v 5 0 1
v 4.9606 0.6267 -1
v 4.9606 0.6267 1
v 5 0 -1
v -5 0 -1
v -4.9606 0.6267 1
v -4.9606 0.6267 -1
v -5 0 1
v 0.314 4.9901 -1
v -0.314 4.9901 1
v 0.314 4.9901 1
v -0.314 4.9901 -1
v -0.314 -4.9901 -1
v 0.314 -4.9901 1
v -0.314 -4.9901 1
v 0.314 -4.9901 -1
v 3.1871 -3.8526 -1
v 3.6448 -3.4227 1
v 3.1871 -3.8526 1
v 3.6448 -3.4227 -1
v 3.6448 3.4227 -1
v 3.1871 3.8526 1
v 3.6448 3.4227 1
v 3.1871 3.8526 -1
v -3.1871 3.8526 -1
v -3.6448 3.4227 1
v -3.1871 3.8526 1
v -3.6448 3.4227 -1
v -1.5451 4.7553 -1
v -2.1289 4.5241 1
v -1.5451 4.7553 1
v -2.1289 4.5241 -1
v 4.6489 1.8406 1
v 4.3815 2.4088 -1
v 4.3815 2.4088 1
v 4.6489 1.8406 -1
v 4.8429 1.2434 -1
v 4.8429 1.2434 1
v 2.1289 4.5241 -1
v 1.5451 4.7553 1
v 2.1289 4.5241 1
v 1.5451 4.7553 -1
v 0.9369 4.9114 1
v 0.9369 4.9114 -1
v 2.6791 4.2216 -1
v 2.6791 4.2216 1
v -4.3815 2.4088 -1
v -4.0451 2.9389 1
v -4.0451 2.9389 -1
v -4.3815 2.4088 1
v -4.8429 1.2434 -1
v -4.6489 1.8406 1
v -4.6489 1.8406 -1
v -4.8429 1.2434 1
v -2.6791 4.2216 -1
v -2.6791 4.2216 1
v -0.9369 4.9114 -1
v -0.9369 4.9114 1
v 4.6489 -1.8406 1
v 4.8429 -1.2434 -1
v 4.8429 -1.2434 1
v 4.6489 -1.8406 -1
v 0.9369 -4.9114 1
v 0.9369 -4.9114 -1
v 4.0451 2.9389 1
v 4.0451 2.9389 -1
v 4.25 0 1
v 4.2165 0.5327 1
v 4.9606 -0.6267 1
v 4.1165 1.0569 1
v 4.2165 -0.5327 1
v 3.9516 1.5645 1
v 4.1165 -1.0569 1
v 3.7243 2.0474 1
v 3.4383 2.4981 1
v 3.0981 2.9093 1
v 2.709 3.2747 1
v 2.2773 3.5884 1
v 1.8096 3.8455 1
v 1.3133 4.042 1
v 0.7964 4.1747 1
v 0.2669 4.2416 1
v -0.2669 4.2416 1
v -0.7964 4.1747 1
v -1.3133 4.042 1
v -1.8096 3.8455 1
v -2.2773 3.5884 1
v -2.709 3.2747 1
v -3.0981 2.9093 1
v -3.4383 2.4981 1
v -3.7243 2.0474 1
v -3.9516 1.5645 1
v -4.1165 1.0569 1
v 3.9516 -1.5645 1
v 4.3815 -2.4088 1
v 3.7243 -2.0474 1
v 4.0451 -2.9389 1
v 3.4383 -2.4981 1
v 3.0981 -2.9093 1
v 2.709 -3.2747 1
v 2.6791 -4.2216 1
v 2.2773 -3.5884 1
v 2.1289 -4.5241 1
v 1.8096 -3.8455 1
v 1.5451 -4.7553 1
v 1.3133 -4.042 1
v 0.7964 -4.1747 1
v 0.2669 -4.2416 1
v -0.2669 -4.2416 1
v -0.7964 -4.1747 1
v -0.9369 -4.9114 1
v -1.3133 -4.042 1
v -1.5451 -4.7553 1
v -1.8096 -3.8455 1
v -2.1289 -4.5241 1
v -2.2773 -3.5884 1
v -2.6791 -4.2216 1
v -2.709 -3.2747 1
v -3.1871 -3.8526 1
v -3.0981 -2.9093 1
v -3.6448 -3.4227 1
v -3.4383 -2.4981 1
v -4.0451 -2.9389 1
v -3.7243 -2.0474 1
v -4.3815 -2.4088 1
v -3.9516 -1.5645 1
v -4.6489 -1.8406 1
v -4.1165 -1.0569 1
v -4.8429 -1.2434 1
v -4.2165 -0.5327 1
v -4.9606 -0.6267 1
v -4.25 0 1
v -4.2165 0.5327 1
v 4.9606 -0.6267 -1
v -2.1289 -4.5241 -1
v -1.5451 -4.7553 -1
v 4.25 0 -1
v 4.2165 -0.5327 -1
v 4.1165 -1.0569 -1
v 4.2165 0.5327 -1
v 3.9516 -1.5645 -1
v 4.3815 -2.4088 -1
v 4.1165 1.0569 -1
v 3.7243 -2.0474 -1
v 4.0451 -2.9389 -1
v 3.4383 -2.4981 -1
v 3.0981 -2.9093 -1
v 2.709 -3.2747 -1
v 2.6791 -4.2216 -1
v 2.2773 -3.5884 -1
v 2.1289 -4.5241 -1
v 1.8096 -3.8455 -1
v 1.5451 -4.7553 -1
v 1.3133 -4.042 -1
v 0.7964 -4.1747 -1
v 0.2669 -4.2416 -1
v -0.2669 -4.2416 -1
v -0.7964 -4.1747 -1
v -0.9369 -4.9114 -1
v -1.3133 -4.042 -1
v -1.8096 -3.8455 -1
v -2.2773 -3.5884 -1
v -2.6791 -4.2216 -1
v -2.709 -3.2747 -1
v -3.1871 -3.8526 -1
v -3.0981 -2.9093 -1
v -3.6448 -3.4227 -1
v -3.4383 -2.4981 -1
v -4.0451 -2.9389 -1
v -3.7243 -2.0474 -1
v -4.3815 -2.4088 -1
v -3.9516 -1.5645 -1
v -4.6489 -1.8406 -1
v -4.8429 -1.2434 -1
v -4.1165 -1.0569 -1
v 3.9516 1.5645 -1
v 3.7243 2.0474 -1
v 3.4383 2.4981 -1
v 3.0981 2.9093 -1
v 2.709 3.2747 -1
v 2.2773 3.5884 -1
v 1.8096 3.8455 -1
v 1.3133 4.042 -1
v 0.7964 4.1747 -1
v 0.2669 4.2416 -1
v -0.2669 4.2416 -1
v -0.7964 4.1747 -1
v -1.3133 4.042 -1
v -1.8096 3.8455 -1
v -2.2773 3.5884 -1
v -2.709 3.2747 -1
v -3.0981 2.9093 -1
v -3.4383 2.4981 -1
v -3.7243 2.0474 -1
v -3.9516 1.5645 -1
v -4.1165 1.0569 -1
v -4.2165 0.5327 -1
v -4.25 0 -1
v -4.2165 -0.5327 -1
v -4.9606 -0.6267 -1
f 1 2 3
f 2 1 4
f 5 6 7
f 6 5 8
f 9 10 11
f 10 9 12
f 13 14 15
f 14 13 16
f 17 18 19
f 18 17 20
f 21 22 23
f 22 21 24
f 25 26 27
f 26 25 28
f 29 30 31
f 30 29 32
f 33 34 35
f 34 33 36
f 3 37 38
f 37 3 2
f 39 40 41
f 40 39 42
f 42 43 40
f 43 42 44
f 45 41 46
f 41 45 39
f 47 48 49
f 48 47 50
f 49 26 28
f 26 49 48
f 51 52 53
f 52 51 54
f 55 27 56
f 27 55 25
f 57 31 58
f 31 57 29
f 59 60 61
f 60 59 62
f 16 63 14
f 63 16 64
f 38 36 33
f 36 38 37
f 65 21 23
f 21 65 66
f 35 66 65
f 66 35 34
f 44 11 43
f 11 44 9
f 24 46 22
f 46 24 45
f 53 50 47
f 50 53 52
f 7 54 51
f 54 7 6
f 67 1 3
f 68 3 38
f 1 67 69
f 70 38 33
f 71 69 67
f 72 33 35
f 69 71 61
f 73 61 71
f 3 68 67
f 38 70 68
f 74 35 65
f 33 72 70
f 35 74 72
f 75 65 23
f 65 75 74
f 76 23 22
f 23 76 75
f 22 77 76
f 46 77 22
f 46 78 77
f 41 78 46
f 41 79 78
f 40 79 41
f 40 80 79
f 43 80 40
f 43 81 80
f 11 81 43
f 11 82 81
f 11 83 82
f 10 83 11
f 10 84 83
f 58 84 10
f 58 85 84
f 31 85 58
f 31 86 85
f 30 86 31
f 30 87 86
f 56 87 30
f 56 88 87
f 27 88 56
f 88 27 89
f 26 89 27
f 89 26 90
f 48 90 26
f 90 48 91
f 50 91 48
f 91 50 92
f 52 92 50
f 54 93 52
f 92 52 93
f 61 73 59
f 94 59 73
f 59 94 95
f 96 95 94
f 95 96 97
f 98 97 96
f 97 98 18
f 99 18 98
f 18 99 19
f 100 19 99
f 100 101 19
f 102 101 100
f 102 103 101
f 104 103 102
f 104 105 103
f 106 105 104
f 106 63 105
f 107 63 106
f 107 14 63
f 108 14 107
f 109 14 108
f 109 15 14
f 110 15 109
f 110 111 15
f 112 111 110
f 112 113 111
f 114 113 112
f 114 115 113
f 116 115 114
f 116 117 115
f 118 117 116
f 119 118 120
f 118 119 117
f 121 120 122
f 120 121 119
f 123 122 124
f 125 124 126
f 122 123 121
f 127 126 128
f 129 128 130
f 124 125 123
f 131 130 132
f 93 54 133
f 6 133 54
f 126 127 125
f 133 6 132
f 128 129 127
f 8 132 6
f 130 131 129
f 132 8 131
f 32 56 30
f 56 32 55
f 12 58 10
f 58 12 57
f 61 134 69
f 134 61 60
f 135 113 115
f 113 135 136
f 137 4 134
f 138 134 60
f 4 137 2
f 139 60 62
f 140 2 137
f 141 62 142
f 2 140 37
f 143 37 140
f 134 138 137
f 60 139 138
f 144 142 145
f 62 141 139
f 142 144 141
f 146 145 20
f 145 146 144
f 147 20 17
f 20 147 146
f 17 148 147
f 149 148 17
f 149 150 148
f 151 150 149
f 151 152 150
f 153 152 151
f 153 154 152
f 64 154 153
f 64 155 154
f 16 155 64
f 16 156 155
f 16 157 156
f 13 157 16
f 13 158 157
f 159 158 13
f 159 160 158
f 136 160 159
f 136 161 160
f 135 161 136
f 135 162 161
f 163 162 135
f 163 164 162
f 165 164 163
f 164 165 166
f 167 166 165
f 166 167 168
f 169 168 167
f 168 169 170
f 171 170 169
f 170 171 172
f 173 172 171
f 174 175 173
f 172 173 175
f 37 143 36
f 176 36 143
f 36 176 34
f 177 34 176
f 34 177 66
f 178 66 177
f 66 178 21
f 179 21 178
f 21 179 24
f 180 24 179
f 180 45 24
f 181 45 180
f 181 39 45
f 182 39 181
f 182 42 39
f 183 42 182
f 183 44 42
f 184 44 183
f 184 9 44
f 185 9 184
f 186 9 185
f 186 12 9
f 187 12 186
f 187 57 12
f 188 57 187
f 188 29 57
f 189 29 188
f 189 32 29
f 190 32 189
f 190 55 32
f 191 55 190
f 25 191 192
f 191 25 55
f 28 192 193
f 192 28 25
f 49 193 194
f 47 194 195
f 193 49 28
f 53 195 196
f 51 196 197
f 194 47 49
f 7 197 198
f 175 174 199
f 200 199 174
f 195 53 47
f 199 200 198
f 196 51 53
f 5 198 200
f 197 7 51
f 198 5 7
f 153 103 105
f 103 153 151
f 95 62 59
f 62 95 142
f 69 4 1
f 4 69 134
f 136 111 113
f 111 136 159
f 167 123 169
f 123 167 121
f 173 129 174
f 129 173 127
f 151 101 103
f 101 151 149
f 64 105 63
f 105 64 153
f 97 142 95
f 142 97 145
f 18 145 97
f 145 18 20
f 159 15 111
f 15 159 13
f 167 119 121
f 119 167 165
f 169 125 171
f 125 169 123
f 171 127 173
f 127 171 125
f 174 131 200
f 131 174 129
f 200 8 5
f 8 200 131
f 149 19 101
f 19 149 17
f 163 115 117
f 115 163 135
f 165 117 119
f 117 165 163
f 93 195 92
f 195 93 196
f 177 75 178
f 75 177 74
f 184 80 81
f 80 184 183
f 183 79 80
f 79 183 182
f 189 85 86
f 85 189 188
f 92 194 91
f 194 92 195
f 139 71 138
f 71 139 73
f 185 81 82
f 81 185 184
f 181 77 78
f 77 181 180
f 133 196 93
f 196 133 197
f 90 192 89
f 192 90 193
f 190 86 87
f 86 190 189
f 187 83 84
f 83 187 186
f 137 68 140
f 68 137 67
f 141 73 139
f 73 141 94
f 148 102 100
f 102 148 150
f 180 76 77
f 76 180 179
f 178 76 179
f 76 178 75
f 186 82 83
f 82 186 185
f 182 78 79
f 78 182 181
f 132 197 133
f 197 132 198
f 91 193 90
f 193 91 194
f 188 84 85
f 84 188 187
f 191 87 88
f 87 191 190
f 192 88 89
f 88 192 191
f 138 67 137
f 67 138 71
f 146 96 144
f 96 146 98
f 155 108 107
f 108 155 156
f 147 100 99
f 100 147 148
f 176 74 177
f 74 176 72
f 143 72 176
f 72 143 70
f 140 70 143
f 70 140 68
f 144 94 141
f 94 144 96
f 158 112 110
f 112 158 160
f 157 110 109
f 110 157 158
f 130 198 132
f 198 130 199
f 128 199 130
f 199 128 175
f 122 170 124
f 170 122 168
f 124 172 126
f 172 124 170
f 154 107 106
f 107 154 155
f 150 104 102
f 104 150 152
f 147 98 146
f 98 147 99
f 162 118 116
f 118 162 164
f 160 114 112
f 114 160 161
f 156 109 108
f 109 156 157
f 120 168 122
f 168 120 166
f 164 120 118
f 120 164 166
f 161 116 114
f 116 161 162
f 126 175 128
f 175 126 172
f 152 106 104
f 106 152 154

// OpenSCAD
$fn = 50;


difference() {
	union() {
		translate(v = [0, 0, -1.0000000000]) {
			cylinder(h = 2, r = 5.0000000000);
		}
	}
	union() {
		translate(v = [0, 0, -100.0000000000]) {
			cylinder(h = 200, r = 4.2500000000);
		}
	}
}
